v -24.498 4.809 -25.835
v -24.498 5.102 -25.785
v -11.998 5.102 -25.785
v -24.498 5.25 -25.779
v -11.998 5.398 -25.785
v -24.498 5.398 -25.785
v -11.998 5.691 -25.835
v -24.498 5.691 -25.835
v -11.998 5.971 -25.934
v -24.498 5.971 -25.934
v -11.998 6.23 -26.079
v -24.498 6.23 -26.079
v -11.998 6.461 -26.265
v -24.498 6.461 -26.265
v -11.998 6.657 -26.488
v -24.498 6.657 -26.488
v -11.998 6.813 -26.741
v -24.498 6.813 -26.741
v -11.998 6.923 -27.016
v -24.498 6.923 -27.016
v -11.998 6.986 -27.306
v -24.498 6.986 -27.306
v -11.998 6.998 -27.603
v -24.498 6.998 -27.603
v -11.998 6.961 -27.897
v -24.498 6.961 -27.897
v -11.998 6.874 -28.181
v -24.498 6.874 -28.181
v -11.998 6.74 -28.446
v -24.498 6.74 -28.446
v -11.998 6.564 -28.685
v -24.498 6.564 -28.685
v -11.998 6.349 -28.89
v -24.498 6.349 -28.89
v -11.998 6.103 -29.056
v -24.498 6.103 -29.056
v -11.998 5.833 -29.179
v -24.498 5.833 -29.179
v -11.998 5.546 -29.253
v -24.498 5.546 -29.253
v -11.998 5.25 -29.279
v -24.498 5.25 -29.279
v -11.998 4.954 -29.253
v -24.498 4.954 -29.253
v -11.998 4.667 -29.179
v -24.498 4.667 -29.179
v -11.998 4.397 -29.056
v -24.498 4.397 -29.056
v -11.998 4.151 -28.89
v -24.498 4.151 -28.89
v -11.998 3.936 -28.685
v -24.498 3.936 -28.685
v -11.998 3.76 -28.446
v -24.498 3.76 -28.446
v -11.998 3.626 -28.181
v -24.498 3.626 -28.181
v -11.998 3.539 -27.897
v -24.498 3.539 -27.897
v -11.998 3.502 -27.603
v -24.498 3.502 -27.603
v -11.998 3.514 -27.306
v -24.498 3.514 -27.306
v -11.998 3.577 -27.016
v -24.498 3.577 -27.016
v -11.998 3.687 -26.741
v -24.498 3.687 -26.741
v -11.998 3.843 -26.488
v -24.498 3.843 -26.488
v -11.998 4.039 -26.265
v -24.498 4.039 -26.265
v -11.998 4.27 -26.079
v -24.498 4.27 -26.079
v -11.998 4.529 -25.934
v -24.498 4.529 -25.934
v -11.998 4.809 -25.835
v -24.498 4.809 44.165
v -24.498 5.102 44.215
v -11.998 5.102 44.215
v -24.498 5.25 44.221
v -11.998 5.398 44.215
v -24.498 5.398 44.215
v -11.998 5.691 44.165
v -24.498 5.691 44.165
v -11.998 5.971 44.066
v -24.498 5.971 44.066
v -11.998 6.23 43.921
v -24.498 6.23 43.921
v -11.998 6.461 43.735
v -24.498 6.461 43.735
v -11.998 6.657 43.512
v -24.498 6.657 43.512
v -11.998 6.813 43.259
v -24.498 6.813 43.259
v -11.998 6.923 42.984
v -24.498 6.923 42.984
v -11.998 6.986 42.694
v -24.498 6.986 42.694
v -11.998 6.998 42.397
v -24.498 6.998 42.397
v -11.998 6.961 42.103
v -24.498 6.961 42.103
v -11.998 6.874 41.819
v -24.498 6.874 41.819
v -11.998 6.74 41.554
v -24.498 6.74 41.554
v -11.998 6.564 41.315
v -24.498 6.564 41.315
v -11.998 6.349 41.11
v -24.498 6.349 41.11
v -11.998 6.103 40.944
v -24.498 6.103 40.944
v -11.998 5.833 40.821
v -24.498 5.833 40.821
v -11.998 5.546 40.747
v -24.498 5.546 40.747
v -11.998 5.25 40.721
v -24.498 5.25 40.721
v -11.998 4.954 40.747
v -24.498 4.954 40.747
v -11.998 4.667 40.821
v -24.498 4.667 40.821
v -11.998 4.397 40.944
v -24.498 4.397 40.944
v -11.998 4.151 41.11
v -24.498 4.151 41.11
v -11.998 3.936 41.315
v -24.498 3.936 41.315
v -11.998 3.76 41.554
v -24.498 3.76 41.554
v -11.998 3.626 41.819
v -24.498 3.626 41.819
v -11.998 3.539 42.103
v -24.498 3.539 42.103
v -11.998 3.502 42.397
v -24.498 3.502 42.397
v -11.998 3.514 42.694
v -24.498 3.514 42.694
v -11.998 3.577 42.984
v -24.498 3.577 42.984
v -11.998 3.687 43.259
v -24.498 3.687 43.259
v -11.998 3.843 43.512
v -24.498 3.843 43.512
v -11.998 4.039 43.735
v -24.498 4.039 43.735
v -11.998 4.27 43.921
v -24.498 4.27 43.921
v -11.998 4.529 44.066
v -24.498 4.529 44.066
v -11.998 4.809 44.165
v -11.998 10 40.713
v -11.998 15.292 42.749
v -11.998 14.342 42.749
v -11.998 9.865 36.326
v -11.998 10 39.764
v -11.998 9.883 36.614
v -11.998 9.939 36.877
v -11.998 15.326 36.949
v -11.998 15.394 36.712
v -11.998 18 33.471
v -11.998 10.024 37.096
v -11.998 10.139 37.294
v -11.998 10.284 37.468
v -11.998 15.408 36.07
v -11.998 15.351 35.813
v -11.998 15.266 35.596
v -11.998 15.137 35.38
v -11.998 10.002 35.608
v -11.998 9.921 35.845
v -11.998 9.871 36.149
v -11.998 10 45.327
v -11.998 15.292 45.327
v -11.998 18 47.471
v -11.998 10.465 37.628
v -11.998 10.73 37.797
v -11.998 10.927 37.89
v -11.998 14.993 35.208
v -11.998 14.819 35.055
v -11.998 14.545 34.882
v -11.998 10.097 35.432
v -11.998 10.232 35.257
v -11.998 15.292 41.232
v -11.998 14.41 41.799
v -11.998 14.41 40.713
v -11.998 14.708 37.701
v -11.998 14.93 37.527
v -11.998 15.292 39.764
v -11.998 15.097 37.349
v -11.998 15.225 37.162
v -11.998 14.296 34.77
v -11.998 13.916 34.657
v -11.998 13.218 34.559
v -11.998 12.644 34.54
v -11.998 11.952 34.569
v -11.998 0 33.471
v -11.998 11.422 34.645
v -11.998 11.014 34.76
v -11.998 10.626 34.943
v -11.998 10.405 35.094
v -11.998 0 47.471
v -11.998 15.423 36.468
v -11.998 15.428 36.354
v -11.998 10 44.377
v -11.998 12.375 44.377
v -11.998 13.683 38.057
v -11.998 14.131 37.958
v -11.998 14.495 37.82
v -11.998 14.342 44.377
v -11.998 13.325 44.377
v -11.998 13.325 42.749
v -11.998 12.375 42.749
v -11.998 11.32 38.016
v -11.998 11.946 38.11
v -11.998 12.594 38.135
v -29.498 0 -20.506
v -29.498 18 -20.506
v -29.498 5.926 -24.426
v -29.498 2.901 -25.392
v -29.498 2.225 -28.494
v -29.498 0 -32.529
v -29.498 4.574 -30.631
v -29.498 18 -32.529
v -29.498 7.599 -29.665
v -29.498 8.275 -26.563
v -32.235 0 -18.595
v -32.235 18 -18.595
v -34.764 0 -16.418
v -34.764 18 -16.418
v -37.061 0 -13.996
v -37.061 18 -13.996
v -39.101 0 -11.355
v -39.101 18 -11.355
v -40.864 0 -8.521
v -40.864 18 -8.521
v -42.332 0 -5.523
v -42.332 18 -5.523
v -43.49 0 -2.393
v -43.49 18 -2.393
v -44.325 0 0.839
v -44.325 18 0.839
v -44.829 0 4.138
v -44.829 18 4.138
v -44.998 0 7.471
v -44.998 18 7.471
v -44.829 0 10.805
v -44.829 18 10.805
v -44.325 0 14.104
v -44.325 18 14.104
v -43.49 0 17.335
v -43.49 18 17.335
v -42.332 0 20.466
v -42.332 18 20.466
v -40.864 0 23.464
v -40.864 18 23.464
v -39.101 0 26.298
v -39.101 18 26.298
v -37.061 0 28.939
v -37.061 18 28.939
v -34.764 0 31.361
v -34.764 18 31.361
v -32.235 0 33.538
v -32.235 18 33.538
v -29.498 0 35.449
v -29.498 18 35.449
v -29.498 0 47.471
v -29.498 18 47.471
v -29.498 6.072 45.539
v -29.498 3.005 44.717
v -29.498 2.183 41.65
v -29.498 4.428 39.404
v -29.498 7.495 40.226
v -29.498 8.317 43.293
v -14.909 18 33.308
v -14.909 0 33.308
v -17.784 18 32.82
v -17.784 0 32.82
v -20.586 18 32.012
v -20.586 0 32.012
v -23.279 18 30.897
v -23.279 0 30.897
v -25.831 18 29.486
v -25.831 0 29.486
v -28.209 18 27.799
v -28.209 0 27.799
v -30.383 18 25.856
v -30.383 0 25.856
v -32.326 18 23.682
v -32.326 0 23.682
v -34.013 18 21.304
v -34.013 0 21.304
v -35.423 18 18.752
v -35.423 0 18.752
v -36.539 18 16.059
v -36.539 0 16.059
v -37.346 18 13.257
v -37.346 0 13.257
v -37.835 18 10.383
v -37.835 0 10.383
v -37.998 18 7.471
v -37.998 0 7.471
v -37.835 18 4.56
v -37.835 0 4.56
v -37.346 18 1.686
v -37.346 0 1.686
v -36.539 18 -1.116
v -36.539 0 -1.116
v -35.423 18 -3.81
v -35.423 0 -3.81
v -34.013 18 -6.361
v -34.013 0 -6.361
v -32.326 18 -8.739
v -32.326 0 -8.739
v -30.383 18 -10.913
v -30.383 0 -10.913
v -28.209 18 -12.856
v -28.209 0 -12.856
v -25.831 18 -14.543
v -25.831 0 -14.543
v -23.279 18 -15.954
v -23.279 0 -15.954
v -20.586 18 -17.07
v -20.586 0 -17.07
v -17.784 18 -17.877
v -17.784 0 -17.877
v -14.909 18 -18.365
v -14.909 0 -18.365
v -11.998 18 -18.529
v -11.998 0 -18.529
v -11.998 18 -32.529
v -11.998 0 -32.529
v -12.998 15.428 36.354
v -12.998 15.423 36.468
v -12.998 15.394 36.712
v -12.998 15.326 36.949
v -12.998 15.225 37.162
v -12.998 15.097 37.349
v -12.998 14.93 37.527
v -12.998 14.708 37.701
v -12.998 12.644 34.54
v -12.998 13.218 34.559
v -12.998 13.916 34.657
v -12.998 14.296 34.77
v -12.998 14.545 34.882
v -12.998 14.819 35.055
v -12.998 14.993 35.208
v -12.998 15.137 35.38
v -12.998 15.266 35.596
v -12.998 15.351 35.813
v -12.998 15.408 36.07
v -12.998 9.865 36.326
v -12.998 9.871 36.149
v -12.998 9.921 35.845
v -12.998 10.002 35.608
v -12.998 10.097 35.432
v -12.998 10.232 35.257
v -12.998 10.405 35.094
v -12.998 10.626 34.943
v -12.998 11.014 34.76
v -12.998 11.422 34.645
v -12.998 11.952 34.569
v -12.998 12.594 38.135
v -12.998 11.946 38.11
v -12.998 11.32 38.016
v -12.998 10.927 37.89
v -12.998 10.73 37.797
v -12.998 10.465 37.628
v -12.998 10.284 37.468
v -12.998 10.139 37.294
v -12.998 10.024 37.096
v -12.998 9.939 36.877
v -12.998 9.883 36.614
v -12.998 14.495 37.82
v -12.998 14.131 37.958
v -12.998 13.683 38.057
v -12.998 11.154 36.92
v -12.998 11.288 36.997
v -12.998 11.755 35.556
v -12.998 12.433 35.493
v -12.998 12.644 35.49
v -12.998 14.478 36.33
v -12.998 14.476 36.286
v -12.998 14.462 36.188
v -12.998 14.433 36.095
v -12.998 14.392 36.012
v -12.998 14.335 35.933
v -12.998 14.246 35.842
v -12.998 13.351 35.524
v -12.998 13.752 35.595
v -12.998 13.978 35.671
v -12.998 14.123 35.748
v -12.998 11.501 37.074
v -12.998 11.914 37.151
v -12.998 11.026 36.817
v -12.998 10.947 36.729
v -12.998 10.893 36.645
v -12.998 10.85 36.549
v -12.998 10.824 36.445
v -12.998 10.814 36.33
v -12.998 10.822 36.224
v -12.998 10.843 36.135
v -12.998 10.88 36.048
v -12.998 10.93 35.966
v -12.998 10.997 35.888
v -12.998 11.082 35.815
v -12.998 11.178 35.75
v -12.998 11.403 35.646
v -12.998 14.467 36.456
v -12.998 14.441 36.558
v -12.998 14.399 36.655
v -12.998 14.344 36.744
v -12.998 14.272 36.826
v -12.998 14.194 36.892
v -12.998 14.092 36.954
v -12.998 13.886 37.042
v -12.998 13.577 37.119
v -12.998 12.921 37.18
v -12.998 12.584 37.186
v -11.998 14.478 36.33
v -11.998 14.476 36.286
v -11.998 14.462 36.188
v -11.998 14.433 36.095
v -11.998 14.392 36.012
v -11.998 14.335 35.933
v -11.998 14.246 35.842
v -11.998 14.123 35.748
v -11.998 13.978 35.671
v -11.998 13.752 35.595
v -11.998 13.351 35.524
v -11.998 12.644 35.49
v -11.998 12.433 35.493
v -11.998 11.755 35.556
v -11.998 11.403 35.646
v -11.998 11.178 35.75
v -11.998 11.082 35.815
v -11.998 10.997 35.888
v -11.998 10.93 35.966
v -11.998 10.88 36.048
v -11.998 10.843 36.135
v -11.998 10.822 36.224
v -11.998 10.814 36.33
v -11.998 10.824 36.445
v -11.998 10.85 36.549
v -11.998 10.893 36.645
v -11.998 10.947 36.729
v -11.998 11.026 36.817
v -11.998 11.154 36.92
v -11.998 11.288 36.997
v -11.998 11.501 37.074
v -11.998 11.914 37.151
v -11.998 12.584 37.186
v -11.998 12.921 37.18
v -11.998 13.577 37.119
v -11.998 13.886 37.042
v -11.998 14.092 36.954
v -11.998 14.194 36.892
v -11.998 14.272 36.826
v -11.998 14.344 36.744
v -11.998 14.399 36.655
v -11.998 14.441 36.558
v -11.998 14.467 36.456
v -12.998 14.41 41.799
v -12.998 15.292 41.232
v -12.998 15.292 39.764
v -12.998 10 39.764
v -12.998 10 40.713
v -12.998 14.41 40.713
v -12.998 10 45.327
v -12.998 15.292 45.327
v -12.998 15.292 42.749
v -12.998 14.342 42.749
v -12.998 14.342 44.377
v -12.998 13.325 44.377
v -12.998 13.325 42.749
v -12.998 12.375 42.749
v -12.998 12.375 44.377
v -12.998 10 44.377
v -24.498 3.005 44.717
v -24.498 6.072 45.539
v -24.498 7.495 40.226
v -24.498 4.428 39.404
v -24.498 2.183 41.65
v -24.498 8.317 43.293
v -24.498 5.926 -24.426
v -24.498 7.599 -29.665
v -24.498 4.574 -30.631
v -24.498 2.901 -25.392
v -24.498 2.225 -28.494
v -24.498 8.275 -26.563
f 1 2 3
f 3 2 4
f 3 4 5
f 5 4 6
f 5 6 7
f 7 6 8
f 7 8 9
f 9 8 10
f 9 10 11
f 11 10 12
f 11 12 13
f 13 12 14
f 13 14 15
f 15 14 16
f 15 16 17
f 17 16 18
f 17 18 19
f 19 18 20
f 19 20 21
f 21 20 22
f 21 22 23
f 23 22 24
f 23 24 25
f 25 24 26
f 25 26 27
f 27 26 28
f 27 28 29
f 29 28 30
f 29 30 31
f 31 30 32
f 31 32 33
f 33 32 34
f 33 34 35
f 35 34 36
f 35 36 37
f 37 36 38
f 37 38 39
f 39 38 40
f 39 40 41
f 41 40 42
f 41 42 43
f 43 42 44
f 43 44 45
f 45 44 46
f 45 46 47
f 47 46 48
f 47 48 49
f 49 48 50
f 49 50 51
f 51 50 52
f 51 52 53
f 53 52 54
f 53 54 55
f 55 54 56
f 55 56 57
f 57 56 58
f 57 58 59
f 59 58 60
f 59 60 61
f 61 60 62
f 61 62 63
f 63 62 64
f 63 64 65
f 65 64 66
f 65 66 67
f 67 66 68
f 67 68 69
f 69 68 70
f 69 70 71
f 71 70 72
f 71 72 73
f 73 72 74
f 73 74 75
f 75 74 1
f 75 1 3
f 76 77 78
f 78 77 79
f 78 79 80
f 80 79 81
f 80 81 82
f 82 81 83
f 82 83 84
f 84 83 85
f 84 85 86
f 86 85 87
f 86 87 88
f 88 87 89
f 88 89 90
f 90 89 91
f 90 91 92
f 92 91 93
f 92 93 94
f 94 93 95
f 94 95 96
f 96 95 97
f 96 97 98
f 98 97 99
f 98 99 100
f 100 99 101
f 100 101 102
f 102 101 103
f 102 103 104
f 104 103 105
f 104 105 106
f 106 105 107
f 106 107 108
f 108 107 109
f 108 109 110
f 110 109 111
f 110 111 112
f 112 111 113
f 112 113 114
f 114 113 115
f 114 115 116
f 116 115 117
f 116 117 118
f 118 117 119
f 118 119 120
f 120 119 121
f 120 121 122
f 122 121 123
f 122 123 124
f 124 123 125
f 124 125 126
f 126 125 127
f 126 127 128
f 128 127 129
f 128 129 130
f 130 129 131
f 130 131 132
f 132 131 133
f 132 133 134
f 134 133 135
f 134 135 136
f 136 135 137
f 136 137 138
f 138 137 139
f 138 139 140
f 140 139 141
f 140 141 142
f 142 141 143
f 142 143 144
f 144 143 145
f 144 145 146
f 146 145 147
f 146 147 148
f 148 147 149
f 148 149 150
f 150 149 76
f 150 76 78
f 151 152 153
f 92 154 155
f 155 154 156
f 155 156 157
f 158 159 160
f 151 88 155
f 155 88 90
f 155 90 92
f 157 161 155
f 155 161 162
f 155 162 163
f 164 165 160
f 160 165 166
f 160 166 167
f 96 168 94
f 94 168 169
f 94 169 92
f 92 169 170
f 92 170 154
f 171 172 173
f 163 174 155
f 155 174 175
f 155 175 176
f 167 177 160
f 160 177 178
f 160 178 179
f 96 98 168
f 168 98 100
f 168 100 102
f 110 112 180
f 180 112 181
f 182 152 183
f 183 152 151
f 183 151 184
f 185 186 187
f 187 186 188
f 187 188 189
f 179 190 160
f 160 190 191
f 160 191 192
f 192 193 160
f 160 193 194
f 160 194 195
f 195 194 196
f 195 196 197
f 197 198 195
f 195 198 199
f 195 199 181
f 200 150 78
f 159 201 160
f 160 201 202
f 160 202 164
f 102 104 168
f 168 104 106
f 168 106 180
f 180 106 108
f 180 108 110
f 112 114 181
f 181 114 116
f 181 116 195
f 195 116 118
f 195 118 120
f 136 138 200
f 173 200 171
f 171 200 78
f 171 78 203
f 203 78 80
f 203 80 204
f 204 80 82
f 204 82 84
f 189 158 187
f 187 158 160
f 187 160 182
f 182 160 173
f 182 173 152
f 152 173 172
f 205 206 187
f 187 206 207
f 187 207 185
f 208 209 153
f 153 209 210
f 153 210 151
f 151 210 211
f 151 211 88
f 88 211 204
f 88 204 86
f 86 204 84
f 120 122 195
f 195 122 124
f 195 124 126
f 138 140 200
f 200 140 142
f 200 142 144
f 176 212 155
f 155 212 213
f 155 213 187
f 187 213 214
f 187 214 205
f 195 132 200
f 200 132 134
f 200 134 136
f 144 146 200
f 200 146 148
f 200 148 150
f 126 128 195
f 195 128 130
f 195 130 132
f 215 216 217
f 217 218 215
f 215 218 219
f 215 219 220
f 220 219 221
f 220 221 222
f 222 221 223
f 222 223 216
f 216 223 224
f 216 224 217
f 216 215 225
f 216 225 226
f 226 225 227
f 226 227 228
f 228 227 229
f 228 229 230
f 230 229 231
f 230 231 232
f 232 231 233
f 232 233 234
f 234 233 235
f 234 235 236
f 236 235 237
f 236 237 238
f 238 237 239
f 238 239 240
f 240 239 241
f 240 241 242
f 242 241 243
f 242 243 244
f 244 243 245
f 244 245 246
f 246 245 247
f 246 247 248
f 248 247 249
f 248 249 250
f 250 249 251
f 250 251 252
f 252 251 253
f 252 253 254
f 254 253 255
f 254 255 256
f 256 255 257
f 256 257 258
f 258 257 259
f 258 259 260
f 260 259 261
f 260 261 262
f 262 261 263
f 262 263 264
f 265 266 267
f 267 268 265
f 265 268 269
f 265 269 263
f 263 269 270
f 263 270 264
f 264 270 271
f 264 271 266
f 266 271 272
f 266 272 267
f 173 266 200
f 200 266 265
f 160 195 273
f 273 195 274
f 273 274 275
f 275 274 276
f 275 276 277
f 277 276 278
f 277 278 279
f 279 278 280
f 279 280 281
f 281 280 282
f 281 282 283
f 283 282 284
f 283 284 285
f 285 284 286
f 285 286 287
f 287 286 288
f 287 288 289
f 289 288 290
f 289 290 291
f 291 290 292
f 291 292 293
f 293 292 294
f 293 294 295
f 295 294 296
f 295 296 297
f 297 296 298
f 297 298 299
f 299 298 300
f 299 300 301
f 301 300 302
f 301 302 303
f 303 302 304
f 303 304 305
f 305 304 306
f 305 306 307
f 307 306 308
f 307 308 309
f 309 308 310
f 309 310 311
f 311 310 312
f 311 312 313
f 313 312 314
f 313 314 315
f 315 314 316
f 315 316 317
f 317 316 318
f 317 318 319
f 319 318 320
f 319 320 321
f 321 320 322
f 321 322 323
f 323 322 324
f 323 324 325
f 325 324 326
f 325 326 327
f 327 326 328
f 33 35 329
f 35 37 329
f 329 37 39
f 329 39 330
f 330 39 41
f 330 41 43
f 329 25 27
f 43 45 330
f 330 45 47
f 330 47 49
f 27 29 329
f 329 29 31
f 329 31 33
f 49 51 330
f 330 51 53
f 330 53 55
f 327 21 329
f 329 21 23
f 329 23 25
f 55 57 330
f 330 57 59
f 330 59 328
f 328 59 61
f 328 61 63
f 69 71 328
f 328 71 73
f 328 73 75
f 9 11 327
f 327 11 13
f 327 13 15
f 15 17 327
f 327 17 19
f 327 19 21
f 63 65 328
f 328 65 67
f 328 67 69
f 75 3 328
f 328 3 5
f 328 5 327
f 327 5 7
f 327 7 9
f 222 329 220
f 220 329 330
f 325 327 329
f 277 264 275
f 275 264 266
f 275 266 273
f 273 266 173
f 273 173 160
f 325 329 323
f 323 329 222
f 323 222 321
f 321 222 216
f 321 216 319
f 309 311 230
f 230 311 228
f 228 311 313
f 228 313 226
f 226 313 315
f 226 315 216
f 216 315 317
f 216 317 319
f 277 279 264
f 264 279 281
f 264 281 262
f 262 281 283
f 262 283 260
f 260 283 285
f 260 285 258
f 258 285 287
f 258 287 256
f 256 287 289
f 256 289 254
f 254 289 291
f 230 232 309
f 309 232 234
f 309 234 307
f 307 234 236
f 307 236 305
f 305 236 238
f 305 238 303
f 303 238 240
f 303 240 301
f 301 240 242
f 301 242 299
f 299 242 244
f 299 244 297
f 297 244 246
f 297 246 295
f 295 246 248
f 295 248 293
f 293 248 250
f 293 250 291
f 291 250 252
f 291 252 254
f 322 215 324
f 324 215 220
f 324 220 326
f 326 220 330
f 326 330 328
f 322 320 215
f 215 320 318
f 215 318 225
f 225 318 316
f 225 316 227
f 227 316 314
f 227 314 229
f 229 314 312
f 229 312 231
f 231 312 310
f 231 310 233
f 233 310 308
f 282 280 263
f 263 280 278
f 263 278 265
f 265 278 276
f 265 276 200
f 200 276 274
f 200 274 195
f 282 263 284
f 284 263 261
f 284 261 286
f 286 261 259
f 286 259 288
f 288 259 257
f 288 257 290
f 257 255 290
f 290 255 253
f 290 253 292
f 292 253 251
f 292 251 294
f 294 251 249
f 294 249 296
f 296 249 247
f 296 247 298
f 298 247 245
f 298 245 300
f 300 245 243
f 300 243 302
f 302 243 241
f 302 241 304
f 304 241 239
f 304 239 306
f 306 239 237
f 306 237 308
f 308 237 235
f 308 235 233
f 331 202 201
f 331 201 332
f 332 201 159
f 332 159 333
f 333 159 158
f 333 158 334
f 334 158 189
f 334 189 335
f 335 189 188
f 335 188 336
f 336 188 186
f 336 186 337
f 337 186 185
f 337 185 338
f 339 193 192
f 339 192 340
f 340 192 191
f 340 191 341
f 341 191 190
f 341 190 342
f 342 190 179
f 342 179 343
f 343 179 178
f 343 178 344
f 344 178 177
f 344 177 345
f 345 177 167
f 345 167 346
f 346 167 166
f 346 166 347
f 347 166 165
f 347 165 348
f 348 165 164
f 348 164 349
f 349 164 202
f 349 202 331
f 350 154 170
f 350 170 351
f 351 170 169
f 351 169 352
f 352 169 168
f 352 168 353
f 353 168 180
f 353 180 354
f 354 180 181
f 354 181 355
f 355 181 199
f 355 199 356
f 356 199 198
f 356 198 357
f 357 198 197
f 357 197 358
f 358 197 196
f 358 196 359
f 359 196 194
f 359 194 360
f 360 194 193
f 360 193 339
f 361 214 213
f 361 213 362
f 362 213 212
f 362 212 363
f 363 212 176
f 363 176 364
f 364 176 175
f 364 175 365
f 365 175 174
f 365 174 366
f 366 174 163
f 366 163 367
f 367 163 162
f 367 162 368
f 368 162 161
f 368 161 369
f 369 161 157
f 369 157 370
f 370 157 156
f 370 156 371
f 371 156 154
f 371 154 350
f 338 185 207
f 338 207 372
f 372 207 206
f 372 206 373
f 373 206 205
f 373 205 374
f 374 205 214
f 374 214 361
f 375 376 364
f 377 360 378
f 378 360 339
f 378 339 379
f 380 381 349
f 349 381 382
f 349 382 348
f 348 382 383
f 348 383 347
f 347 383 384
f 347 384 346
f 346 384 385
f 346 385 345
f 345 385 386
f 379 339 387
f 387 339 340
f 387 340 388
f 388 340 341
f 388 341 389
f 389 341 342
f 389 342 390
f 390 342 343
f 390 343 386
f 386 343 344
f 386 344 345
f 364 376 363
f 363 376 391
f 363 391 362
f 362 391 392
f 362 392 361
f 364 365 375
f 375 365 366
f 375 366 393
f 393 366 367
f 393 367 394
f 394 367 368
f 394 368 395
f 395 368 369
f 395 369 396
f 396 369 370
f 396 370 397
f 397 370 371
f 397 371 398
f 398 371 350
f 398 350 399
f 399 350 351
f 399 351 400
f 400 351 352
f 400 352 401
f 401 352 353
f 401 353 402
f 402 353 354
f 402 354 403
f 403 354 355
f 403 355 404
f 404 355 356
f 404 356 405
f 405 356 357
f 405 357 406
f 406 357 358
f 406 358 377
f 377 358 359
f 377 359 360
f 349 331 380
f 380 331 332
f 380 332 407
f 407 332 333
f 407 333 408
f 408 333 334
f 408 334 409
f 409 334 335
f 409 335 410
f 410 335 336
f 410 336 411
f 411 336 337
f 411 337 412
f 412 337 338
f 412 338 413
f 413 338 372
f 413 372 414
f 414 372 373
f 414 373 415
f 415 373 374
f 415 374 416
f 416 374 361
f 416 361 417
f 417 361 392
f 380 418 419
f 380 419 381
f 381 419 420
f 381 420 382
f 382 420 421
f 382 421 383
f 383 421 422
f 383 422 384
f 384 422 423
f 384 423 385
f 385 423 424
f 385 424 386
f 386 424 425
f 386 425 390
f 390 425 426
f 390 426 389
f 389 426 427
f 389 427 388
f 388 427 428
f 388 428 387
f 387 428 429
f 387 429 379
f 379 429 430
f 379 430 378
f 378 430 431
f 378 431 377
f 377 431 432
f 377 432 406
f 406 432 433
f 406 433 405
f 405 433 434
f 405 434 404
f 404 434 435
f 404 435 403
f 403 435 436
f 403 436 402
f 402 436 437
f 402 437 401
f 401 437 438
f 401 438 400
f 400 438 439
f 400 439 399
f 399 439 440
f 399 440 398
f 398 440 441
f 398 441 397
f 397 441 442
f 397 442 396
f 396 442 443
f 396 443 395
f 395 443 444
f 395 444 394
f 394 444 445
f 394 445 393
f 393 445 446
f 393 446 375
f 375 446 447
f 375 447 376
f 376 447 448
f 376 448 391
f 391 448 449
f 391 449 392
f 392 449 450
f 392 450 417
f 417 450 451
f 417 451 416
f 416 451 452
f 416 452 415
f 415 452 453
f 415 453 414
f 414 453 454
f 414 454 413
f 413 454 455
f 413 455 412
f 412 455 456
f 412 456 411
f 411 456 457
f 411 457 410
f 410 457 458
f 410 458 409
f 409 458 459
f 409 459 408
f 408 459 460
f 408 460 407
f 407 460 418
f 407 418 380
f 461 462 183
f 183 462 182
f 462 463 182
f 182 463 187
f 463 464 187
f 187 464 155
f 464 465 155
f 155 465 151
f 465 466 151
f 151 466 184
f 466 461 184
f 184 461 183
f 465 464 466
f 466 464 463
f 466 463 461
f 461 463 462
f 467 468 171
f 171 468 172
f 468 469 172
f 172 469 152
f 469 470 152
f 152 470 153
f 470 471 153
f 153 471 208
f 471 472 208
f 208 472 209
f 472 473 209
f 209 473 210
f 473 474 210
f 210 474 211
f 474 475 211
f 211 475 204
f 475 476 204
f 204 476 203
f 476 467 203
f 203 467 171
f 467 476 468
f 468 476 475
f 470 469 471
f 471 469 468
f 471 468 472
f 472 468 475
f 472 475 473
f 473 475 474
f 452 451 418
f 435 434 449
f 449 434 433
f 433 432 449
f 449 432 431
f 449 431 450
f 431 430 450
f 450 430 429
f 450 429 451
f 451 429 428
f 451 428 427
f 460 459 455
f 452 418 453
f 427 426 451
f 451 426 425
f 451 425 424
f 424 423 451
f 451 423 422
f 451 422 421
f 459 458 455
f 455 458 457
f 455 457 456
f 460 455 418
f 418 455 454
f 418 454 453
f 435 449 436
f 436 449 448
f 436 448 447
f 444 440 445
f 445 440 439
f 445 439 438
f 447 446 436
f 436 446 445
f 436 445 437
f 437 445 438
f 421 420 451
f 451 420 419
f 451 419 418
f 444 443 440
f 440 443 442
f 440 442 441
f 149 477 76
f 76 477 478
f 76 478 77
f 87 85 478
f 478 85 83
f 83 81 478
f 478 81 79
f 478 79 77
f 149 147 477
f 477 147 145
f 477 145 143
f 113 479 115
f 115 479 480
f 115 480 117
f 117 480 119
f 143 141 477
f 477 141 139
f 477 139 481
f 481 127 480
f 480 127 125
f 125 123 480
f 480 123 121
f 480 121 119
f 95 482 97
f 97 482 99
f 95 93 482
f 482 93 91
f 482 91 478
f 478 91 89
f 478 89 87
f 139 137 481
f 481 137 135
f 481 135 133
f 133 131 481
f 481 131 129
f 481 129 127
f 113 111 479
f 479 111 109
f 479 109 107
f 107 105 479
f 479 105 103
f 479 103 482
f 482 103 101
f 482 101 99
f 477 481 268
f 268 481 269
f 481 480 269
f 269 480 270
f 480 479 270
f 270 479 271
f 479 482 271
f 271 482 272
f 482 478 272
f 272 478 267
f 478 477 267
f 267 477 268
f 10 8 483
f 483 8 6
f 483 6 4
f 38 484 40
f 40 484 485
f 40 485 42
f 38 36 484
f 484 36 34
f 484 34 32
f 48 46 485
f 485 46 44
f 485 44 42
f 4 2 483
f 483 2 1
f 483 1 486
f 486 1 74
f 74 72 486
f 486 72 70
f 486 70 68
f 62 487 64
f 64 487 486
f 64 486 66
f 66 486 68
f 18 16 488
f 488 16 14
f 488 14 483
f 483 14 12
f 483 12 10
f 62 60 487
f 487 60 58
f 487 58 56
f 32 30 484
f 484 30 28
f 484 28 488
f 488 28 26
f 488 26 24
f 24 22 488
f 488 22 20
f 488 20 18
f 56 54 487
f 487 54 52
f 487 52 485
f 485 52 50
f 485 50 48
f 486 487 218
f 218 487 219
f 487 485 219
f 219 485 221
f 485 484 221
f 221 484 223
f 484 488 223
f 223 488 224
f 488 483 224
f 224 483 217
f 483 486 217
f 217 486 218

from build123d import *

# Parameters (mm, degrees)
BOSS_EXTRUDE1_DEPTH = 18
SKETCH2_R           = 1.75
CUT_EXTRUDE1_DEPTH  = 34
CUT_EXTRUDE2_DEPTH  = 1
CUT_EXTRUDE3_DEPTH  = 5


with BuildPart() as part:
    # Sketch1 → Boss-Extrude1 (new body)
    with BuildSketch(Plane(origin=(0, 0, 0), x_dir=(1, 0, 0), z_dir=(0, 1, 0))):
        with BuildLine():
            Line((-11.998275301, 32.528571429), (-29.498275301, 32.528571429))
            Line((-29.498275301, 32.528571429), (-29.498275301, 20.506241096))
            ThreePointArc((-29.498275301, 20.506241096), (-44.998275301, -7.471428571), (-29.498275301, -35.449098239))
            Line((-29.498275301, -35.449098239), (-29.498275301, -47.471428571))
            Line((-29.498275301, -47.471428571), (-11.998275301, -47.471428571))
            Line((-11.998275301, -47.471428571), (-11.998275301, -33.471428571))
            ThreePointArc((-11.998275301, -33.471428571), (-37.998275301, -7.471428571), (-11.998275301, 18.528571429))
            Line((-11.998275301, 18.528571429), (-11.998275301, 32.528571429))
        make_face()
    extrude(amount=BOSS_EXTRUDE1_DEPTH)

    # Sketch2 → Cut-Extrude1 (cut, through all)
    with BuildSketch(Plane(origin=(-11.998275301, 0, 0), x_dir=(0, 0, -1), z_dir=(1, 0, 0))):
        with Locations((-42.471428571, 5.25)):
            Circle(SKETCH2_R)
        with Locations((27.528571429, 5.25)):
            Circle(SKETCH2_R)
    extrude(amount=-CUT_EXTRUDE1_DEPTH, mode=Mode.SUBTRACT)

    # Sketch3 → Cut-Extrude2 (cut)
    with BuildSketch(Plane(origin=(-11.998275301, 0, 0), x_dir=(0, 0, -1), z_dir=(1, 0, 0))):
        Polygon((-45.326710591, 15.291960871), (-42.748719138, 15.291960871), (-42.748719138, 14.342174546), (-44.376924266, 14.342174546), (-44.376924266, 13.324546341), (-42.748719138, 13.324546341), (-42.748719138, 12.374760016), (-44.376924266, 12.374760016), (-44.376924266, 10.000294204), (-45.326710591, 10.000294204), align=None)
        Polygon((-41.231817095, 15.291960871), (-39.763676403, 15.291960871), (-39.763676403, 10.000294204), (-40.713462728, 10.000294204), (-40.713462728, 14.410016426), (-41.798932813, 14.410016426), align=None)
        with BuildLine():
            add(Edge.make_bspline(
                [(-36.353561886, 15.427644632), (-36.307588286, 15.42696214), (-36.217191905, 15.425620181), (-36.084055051, 15.411085663), (-35.955807451, 15.389128061), (-35.831947383, 15.358504863), (-35.713366407, 15.317976152), (-35.599201463, 15.269463978), (-35.490811447, 15.21042378), (-35.386814038, 15.143734844), (-35.287249296, 15.068233514), (-35.194510191, 14.9821581), (-35.106903109, 14.8874892), (-35.026324422, 14.78279559), (-34.950989689, 14.66902957), (-34.881146448, 14.546173101), (-34.817329365, 14.413624881), (-34.758823205, 14.271145717), (-34.706506811, 14.116599909), (-34.662440778, 13.948214748), (-34.624646781, 13.765951781), (-34.592745981, 13.569357327), (-34.568634132, 13.358170067), (-34.55238226, 13.132530302), (-34.541229457, 12.892873032), (-34.540319242, 12.728470114), (-34.539851616, 12.644007479)],
                knots=[0, 0, 0, 0, 0.000137869, 0.000271087, 0.000401268, 0.000528016, 0.000653387, 0.000776847, 0.000899687, 0.001023184, 0.001147212, 0.001273995, 0.001402276, 0.001533737, 0.001669859, 0.001811332, 0.001957355, 0.002110898, 0.002273142, 0.002446443, 0.002632718, 0.002831386, 0.003043736, 0.003270158, 0.003509959, 0.003763326, 0.003763326, 0.003763326, 0.003763326], degree=3))
            add(Edge.make_bspline(
                [(-34.539851616, 12.644007479), (-34.540356994, 12.558488121), (-34.541338933, 12.392325544), (-34.551918635, 12.150476247), (-34.570137381, 11.923198201), (-34.593619017, 11.710514921), (-34.625782434, 11.51253872), (-34.663450266, 11.328756974), (-34.708211869, 11.159236299), (-34.762251547, 11.004358661), (-34.820403569, 10.861629272), (-34.884395218, 10.72933949), (-34.95311113, 10.607131), (-35.024975169, 10.49316012), (-35.103927185, 10.390786655), (-35.186124362, 10.296529371), (-35.275145712, 10.213978649), (-35.36724309, 10.138880195), (-35.465790398, 10.07398006), (-35.569771342, 10.017219472), (-35.681039722, 9.971179894), (-35.797567305, 9.931137128), (-35.921340327, 9.902390743), (-36.050392052, 9.87958143), (-36.186179447, 9.866975605), (-36.278628975, 9.86541177), (-36.326001122, 9.864610443)],
                knots=[0, 0, 0, 0, 0.000256547, 0.000498466, 0.000726027, 0.000940483, 0.001140197, 0.00132751, 0.001503133, 0.001665719, 0.001819262, 0.001965285, 0.002106237, 0.002239733, 0.002369061, 0.002493713, 0.002614449, 0.002732817, 0.002849829, 0.002967931, 0.003087634, 0.003210657, 0.003337152, 0.003468377, 0.003603601, 0.003745708, 0.003745708, 0.003745708, 0.003745708], degree=3))
            add(Edge.make_bspline(
                [(-36.326001122, 9.864610443), (-36.373371991, 9.865427227), (-36.466170825, 9.867027294), (-36.602325403, 9.879487701), (-36.732061037, 9.902483144), (-36.856813303, 9.931357822), (-36.975713944, 9.971091296), (-37.089333085, 10.018508345), (-37.196797094, 10.074914775), (-37.298403521, 10.139966121), (-37.393805453, 10.214562109), (-37.484485436, 10.297904852), (-37.57024288, 10.389783097), (-37.649773202, 10.491225956), (-37.724378878, 10.600879379), (-37.793281889, 10.719995555), (-37.856440827, 10.848401053), (-37.915831314, 10.986274857), (-37.96743413, 11.136585233), (-38.01335824, 11.300674432), (-38.050978063, 11.479910274), (-38.081234442, 11.674235178), (-38.105391117, 11.883237456), (-38.123360907, 12.10701799), (-38.133999374, 12.34568101), (-38.134971016, 12.509725991), (-38.135471275, 12.594186098)],
                knots=[0, 0, 0, 0, 0.000142107, 0.000278386, 0.000409611, 0.000537137, 0.000662171, 0.000785217, 0.000906125, 0.0010258, 0.001146662, 0.001268952, 0.001394958, 0.001523261, 0.001655272, 0.00179254, 0.001935707, 0.002084361, 0.002242593, 0.002412082, 0.002595246, 0.002791652, 0.003001896, 0.003226287, 0.003465029, 0.003718396, 0.003718396, 0.003718396, 0.003718396], degree=3))
            add(Edge.make_bspline(
                [(-38.135471275, 12.594186098), (-38.134565103, 12.711536767), (-38.132816632, 12.937966394), (-38.11065873, 13.265091372), (-38.078136549, 13.567461747), (-38.03036917, 13.844571729), (-37.971305466, 14.097447652), (-37.895671318, 14.324423703), (-37.809567342, 14.528640603), (-37.736195692, 14.649619924), (-37.700859229, 14.707884682)],
                knots=[0, 0, 0, 0, 0.000351987, 0.000679164, 0.000983171, 0.00126392, 0.001522311, 0.001761317, 0.001981101, 0.002185291, 0.002185291, 0.002185291, 0.002185291], degree=3))
            add(Edge.make_bspline(
                [(-37.700859229, 14.707884682), (-37.659771672, 14.765123962), (-37.579437402, 14.877038034), (-37.438970685, 15.023960291), (-37.288057486, 15.149615399), (-37.123598134, 15.251159672), (-36.948193623, 15.331237493), (-36.760338015, 15.387795557), (-36.560725029, 15.42074892), (-36.423647462, 15.425311736), (-36.353561886, 15.427644632)],
                knots=[0, 0, 0, 0, 0.000211159, 0.000412857, 0.000607894, 0.000798799, 0.000990925, 0.001184751, 0.001385682, 0.001595891, 0.001595891, 0.001595891, 0.001595891], degree=3))
        make_face()
        with BuildLine():
            add(Edge.make_bspline(
                [(-36.33024124, 14.477858307), (-36.371801756, 14.475888421), (-36.453282428, 14.472026399), (-36.571514767, 14.439243282), (-36.68300048, 14.38860799), (-36.767804684, 14.327676333), (-36.831279787, 14.269266033), (-36.875630297, 14.216406611), (-36.918399374, 14.157419305), (-36.956175176, 14.089642323), (-36.991845394, 14.01551097), (-37.026705949, 13.934688735), (-37.055282451, 13.84519045), (-37.083358105, 13.74854028), (-37.107954999, 13.642066107), (-37.128561803, 13.524897621), (-37.146972171, 13.396272864), (-37.159813623, 13.256107588), (-37.171785709, 13.10454844), (-37.180367868, 12.941257804), (-37.183955853, 12.766279733), (-37.185096364, 12.645774932), (-37.18568495, 12.583585804)],
                knots=[0, 0, 0, 0, 0.000124476, 0.000244038, 0.000365457, 0.000490162, 0.000555412, 0.000623823, 0.000696773, 0.000773689, 0.000856181, 0.000943593, 0.001037452, 0.001137775, 0.001245513, 0.001365071, 0.001494594, 0.001635195, 0.001787227, 0.001950691, 0.002125648, 0.002312225, 0.002312225, 0.002312225, 0.002312225], degree=3))
            add(Edge.make_bspline(
                [(-37.18568495, 12.583585804), (-37.184716209, 12.503016782), (-37.182858577, 12.348519708), (-37.173129169, 12.126347537), (-37.153627378, 11.924152971), (-37.129371087, 11.740565663), (-37.095302136, 11.576776226), (-37.056103602, 11.43123506), (-37.007696898, 11.305797462), (-36.951753625, 11.198649322), (-36.88979393, 11.107498621), (-36.822533954, 11.030020115), (-36.752263661, 10.962927384), (-36.676789684, 10.908428786), (-36.596292083, 10.866663572), (-36.511442865, 10.83662237), (-36.422188108, 10.818232899), (-36.361067371, 10.81568287), (-36.33024124, 10.814396768)],
                knots=[0, 0, 0, 0, 0.000241724, 0.000463523, 0.000666886, 0.000850978, 0.001018747, 0.001168433, 0.001302685, 0.001421223, 0.001530303, 0.001632518, 0.001728508, 0.001821174, 0.001910782, 0.001999629, 0.002090477, 0.002182918, 0.002182918, 0.002182918, 0.002182918], degree=3))
            add(Edge.make_bspline(
                [(-36.33024124, 10.814396768), (-36.300472964, 10.815276815), (-36.242190381, 10.816999837), (-36.157201323, 10.834686425), (-36.07682963, 10.863440976), (-36.00131797, 10.904116306), (-35.930396249, 10.955841213), (-35.864411087, 11.018842997), (-35.803860132, 11.093749638), (-35.768582871, 11.149341444), (-35.750405169, 11.177986846)],
                knots=[0, 0, 0, 0, 8.92e-05, 0.000174643, 0.00025914, 0.000344503, 0.000431011, 0.000521735, 0.000617426, 0.00071915, 0.00071915, 0.00071915, 0.00071915], degree=3))
            add(Edge.make_bspline(
                [(-35.750405169, 11.177986846), (-35.729003986, 11.217129871), (-35.684127441, 11.299209621), (-35.632196225, 11.437716138), (-35.588483423, 11.593928598), (-35.550860453, 11.768333148), (-35.525128636, 11.961617661), (-35.502968427, 12.172556504), (-35.492280008, 12.402211879), (-35.490541478, 12.561317951), (-35.489637941, 12.644007479)],
                knots=[0, 0, 0, 0, 0.000133698, 0.000280354, 0.000442414, 0.000620174, 0.000815058, 0.001027066, 0.001256329, 0.001504413, 0.001504413, 0.001504413, 0.001504413], degree=3))
            add(Edge.make_bspline(
                [(-35.489637941, 12.644007479), (-35.489986958, 12.727414792), (-35.490658756, 12.88795963), (-35.502984298, 13.118440632), (-35.520148556, 13.328946776), (-35.545254912, 13.519008087), (-35.577558802, 13.68908595), (-35.617373468, 13.839169248), (-35.664311998, 13.969553765), (-35.719975501, 14.080109491), (-35.781626288, 14.174066693), (-35.847070481, 14.254674684), (-35.916584804, 14.323495752), (-35.990053007, 14.380788885), (-36.069175537, 14.424565135), (-36.152441049, 14.45547479), (-36.240020246, 14.474174094), (-36.299761657, 14.47661366), (-36.33024124, 14.477858307)],
                knots=[0, 0, 0, 0, 0.000250187, 0.000481568, 0.000692226, 0.000883669, 0.001056428, 0.001211224, 0.001349065, 0.001471373, 0.001581627, 0.001685596, 0.001782291, 0.00187452, 0.001964197, 0.002052409, 0.002140142, 0.002231527, 0.002231527, 0.002231527, 0.002231527], degree=3))
        make_face(mode=Mode.SUBTRACT)
    extrude(amount=-CUT_EXTRUDE2_DEPTH, mode=Mode.SUBTRACT)

    # Sketch4 → Cut-Extrude3 (cut)
    with BuildSketch(Plane.ZY.offset(29.498275301)):
        Polygon((-25.391799088, 2.901056132), (-24.425940196, 5.926027195), (-26.562712537, 8.274971063), (-29.665343769, 7.598943868), (-30.631202661, 4.573972805), (-28.49443032, 2.225028937), align=None)
        Polygon((44.716794169, 3.004634402), (45.538655018, 6.071860849), (43.293289421, 8.317226447), (40.226062974, 7.495365598), (39.404202124, 4.428139151), (41.649567722, 2.182773553), align=None)
    extrude(amount=-CUT_EXTRUDE3_DEPTH, mode=Mode.SUBTRACT)


solid = part.part
